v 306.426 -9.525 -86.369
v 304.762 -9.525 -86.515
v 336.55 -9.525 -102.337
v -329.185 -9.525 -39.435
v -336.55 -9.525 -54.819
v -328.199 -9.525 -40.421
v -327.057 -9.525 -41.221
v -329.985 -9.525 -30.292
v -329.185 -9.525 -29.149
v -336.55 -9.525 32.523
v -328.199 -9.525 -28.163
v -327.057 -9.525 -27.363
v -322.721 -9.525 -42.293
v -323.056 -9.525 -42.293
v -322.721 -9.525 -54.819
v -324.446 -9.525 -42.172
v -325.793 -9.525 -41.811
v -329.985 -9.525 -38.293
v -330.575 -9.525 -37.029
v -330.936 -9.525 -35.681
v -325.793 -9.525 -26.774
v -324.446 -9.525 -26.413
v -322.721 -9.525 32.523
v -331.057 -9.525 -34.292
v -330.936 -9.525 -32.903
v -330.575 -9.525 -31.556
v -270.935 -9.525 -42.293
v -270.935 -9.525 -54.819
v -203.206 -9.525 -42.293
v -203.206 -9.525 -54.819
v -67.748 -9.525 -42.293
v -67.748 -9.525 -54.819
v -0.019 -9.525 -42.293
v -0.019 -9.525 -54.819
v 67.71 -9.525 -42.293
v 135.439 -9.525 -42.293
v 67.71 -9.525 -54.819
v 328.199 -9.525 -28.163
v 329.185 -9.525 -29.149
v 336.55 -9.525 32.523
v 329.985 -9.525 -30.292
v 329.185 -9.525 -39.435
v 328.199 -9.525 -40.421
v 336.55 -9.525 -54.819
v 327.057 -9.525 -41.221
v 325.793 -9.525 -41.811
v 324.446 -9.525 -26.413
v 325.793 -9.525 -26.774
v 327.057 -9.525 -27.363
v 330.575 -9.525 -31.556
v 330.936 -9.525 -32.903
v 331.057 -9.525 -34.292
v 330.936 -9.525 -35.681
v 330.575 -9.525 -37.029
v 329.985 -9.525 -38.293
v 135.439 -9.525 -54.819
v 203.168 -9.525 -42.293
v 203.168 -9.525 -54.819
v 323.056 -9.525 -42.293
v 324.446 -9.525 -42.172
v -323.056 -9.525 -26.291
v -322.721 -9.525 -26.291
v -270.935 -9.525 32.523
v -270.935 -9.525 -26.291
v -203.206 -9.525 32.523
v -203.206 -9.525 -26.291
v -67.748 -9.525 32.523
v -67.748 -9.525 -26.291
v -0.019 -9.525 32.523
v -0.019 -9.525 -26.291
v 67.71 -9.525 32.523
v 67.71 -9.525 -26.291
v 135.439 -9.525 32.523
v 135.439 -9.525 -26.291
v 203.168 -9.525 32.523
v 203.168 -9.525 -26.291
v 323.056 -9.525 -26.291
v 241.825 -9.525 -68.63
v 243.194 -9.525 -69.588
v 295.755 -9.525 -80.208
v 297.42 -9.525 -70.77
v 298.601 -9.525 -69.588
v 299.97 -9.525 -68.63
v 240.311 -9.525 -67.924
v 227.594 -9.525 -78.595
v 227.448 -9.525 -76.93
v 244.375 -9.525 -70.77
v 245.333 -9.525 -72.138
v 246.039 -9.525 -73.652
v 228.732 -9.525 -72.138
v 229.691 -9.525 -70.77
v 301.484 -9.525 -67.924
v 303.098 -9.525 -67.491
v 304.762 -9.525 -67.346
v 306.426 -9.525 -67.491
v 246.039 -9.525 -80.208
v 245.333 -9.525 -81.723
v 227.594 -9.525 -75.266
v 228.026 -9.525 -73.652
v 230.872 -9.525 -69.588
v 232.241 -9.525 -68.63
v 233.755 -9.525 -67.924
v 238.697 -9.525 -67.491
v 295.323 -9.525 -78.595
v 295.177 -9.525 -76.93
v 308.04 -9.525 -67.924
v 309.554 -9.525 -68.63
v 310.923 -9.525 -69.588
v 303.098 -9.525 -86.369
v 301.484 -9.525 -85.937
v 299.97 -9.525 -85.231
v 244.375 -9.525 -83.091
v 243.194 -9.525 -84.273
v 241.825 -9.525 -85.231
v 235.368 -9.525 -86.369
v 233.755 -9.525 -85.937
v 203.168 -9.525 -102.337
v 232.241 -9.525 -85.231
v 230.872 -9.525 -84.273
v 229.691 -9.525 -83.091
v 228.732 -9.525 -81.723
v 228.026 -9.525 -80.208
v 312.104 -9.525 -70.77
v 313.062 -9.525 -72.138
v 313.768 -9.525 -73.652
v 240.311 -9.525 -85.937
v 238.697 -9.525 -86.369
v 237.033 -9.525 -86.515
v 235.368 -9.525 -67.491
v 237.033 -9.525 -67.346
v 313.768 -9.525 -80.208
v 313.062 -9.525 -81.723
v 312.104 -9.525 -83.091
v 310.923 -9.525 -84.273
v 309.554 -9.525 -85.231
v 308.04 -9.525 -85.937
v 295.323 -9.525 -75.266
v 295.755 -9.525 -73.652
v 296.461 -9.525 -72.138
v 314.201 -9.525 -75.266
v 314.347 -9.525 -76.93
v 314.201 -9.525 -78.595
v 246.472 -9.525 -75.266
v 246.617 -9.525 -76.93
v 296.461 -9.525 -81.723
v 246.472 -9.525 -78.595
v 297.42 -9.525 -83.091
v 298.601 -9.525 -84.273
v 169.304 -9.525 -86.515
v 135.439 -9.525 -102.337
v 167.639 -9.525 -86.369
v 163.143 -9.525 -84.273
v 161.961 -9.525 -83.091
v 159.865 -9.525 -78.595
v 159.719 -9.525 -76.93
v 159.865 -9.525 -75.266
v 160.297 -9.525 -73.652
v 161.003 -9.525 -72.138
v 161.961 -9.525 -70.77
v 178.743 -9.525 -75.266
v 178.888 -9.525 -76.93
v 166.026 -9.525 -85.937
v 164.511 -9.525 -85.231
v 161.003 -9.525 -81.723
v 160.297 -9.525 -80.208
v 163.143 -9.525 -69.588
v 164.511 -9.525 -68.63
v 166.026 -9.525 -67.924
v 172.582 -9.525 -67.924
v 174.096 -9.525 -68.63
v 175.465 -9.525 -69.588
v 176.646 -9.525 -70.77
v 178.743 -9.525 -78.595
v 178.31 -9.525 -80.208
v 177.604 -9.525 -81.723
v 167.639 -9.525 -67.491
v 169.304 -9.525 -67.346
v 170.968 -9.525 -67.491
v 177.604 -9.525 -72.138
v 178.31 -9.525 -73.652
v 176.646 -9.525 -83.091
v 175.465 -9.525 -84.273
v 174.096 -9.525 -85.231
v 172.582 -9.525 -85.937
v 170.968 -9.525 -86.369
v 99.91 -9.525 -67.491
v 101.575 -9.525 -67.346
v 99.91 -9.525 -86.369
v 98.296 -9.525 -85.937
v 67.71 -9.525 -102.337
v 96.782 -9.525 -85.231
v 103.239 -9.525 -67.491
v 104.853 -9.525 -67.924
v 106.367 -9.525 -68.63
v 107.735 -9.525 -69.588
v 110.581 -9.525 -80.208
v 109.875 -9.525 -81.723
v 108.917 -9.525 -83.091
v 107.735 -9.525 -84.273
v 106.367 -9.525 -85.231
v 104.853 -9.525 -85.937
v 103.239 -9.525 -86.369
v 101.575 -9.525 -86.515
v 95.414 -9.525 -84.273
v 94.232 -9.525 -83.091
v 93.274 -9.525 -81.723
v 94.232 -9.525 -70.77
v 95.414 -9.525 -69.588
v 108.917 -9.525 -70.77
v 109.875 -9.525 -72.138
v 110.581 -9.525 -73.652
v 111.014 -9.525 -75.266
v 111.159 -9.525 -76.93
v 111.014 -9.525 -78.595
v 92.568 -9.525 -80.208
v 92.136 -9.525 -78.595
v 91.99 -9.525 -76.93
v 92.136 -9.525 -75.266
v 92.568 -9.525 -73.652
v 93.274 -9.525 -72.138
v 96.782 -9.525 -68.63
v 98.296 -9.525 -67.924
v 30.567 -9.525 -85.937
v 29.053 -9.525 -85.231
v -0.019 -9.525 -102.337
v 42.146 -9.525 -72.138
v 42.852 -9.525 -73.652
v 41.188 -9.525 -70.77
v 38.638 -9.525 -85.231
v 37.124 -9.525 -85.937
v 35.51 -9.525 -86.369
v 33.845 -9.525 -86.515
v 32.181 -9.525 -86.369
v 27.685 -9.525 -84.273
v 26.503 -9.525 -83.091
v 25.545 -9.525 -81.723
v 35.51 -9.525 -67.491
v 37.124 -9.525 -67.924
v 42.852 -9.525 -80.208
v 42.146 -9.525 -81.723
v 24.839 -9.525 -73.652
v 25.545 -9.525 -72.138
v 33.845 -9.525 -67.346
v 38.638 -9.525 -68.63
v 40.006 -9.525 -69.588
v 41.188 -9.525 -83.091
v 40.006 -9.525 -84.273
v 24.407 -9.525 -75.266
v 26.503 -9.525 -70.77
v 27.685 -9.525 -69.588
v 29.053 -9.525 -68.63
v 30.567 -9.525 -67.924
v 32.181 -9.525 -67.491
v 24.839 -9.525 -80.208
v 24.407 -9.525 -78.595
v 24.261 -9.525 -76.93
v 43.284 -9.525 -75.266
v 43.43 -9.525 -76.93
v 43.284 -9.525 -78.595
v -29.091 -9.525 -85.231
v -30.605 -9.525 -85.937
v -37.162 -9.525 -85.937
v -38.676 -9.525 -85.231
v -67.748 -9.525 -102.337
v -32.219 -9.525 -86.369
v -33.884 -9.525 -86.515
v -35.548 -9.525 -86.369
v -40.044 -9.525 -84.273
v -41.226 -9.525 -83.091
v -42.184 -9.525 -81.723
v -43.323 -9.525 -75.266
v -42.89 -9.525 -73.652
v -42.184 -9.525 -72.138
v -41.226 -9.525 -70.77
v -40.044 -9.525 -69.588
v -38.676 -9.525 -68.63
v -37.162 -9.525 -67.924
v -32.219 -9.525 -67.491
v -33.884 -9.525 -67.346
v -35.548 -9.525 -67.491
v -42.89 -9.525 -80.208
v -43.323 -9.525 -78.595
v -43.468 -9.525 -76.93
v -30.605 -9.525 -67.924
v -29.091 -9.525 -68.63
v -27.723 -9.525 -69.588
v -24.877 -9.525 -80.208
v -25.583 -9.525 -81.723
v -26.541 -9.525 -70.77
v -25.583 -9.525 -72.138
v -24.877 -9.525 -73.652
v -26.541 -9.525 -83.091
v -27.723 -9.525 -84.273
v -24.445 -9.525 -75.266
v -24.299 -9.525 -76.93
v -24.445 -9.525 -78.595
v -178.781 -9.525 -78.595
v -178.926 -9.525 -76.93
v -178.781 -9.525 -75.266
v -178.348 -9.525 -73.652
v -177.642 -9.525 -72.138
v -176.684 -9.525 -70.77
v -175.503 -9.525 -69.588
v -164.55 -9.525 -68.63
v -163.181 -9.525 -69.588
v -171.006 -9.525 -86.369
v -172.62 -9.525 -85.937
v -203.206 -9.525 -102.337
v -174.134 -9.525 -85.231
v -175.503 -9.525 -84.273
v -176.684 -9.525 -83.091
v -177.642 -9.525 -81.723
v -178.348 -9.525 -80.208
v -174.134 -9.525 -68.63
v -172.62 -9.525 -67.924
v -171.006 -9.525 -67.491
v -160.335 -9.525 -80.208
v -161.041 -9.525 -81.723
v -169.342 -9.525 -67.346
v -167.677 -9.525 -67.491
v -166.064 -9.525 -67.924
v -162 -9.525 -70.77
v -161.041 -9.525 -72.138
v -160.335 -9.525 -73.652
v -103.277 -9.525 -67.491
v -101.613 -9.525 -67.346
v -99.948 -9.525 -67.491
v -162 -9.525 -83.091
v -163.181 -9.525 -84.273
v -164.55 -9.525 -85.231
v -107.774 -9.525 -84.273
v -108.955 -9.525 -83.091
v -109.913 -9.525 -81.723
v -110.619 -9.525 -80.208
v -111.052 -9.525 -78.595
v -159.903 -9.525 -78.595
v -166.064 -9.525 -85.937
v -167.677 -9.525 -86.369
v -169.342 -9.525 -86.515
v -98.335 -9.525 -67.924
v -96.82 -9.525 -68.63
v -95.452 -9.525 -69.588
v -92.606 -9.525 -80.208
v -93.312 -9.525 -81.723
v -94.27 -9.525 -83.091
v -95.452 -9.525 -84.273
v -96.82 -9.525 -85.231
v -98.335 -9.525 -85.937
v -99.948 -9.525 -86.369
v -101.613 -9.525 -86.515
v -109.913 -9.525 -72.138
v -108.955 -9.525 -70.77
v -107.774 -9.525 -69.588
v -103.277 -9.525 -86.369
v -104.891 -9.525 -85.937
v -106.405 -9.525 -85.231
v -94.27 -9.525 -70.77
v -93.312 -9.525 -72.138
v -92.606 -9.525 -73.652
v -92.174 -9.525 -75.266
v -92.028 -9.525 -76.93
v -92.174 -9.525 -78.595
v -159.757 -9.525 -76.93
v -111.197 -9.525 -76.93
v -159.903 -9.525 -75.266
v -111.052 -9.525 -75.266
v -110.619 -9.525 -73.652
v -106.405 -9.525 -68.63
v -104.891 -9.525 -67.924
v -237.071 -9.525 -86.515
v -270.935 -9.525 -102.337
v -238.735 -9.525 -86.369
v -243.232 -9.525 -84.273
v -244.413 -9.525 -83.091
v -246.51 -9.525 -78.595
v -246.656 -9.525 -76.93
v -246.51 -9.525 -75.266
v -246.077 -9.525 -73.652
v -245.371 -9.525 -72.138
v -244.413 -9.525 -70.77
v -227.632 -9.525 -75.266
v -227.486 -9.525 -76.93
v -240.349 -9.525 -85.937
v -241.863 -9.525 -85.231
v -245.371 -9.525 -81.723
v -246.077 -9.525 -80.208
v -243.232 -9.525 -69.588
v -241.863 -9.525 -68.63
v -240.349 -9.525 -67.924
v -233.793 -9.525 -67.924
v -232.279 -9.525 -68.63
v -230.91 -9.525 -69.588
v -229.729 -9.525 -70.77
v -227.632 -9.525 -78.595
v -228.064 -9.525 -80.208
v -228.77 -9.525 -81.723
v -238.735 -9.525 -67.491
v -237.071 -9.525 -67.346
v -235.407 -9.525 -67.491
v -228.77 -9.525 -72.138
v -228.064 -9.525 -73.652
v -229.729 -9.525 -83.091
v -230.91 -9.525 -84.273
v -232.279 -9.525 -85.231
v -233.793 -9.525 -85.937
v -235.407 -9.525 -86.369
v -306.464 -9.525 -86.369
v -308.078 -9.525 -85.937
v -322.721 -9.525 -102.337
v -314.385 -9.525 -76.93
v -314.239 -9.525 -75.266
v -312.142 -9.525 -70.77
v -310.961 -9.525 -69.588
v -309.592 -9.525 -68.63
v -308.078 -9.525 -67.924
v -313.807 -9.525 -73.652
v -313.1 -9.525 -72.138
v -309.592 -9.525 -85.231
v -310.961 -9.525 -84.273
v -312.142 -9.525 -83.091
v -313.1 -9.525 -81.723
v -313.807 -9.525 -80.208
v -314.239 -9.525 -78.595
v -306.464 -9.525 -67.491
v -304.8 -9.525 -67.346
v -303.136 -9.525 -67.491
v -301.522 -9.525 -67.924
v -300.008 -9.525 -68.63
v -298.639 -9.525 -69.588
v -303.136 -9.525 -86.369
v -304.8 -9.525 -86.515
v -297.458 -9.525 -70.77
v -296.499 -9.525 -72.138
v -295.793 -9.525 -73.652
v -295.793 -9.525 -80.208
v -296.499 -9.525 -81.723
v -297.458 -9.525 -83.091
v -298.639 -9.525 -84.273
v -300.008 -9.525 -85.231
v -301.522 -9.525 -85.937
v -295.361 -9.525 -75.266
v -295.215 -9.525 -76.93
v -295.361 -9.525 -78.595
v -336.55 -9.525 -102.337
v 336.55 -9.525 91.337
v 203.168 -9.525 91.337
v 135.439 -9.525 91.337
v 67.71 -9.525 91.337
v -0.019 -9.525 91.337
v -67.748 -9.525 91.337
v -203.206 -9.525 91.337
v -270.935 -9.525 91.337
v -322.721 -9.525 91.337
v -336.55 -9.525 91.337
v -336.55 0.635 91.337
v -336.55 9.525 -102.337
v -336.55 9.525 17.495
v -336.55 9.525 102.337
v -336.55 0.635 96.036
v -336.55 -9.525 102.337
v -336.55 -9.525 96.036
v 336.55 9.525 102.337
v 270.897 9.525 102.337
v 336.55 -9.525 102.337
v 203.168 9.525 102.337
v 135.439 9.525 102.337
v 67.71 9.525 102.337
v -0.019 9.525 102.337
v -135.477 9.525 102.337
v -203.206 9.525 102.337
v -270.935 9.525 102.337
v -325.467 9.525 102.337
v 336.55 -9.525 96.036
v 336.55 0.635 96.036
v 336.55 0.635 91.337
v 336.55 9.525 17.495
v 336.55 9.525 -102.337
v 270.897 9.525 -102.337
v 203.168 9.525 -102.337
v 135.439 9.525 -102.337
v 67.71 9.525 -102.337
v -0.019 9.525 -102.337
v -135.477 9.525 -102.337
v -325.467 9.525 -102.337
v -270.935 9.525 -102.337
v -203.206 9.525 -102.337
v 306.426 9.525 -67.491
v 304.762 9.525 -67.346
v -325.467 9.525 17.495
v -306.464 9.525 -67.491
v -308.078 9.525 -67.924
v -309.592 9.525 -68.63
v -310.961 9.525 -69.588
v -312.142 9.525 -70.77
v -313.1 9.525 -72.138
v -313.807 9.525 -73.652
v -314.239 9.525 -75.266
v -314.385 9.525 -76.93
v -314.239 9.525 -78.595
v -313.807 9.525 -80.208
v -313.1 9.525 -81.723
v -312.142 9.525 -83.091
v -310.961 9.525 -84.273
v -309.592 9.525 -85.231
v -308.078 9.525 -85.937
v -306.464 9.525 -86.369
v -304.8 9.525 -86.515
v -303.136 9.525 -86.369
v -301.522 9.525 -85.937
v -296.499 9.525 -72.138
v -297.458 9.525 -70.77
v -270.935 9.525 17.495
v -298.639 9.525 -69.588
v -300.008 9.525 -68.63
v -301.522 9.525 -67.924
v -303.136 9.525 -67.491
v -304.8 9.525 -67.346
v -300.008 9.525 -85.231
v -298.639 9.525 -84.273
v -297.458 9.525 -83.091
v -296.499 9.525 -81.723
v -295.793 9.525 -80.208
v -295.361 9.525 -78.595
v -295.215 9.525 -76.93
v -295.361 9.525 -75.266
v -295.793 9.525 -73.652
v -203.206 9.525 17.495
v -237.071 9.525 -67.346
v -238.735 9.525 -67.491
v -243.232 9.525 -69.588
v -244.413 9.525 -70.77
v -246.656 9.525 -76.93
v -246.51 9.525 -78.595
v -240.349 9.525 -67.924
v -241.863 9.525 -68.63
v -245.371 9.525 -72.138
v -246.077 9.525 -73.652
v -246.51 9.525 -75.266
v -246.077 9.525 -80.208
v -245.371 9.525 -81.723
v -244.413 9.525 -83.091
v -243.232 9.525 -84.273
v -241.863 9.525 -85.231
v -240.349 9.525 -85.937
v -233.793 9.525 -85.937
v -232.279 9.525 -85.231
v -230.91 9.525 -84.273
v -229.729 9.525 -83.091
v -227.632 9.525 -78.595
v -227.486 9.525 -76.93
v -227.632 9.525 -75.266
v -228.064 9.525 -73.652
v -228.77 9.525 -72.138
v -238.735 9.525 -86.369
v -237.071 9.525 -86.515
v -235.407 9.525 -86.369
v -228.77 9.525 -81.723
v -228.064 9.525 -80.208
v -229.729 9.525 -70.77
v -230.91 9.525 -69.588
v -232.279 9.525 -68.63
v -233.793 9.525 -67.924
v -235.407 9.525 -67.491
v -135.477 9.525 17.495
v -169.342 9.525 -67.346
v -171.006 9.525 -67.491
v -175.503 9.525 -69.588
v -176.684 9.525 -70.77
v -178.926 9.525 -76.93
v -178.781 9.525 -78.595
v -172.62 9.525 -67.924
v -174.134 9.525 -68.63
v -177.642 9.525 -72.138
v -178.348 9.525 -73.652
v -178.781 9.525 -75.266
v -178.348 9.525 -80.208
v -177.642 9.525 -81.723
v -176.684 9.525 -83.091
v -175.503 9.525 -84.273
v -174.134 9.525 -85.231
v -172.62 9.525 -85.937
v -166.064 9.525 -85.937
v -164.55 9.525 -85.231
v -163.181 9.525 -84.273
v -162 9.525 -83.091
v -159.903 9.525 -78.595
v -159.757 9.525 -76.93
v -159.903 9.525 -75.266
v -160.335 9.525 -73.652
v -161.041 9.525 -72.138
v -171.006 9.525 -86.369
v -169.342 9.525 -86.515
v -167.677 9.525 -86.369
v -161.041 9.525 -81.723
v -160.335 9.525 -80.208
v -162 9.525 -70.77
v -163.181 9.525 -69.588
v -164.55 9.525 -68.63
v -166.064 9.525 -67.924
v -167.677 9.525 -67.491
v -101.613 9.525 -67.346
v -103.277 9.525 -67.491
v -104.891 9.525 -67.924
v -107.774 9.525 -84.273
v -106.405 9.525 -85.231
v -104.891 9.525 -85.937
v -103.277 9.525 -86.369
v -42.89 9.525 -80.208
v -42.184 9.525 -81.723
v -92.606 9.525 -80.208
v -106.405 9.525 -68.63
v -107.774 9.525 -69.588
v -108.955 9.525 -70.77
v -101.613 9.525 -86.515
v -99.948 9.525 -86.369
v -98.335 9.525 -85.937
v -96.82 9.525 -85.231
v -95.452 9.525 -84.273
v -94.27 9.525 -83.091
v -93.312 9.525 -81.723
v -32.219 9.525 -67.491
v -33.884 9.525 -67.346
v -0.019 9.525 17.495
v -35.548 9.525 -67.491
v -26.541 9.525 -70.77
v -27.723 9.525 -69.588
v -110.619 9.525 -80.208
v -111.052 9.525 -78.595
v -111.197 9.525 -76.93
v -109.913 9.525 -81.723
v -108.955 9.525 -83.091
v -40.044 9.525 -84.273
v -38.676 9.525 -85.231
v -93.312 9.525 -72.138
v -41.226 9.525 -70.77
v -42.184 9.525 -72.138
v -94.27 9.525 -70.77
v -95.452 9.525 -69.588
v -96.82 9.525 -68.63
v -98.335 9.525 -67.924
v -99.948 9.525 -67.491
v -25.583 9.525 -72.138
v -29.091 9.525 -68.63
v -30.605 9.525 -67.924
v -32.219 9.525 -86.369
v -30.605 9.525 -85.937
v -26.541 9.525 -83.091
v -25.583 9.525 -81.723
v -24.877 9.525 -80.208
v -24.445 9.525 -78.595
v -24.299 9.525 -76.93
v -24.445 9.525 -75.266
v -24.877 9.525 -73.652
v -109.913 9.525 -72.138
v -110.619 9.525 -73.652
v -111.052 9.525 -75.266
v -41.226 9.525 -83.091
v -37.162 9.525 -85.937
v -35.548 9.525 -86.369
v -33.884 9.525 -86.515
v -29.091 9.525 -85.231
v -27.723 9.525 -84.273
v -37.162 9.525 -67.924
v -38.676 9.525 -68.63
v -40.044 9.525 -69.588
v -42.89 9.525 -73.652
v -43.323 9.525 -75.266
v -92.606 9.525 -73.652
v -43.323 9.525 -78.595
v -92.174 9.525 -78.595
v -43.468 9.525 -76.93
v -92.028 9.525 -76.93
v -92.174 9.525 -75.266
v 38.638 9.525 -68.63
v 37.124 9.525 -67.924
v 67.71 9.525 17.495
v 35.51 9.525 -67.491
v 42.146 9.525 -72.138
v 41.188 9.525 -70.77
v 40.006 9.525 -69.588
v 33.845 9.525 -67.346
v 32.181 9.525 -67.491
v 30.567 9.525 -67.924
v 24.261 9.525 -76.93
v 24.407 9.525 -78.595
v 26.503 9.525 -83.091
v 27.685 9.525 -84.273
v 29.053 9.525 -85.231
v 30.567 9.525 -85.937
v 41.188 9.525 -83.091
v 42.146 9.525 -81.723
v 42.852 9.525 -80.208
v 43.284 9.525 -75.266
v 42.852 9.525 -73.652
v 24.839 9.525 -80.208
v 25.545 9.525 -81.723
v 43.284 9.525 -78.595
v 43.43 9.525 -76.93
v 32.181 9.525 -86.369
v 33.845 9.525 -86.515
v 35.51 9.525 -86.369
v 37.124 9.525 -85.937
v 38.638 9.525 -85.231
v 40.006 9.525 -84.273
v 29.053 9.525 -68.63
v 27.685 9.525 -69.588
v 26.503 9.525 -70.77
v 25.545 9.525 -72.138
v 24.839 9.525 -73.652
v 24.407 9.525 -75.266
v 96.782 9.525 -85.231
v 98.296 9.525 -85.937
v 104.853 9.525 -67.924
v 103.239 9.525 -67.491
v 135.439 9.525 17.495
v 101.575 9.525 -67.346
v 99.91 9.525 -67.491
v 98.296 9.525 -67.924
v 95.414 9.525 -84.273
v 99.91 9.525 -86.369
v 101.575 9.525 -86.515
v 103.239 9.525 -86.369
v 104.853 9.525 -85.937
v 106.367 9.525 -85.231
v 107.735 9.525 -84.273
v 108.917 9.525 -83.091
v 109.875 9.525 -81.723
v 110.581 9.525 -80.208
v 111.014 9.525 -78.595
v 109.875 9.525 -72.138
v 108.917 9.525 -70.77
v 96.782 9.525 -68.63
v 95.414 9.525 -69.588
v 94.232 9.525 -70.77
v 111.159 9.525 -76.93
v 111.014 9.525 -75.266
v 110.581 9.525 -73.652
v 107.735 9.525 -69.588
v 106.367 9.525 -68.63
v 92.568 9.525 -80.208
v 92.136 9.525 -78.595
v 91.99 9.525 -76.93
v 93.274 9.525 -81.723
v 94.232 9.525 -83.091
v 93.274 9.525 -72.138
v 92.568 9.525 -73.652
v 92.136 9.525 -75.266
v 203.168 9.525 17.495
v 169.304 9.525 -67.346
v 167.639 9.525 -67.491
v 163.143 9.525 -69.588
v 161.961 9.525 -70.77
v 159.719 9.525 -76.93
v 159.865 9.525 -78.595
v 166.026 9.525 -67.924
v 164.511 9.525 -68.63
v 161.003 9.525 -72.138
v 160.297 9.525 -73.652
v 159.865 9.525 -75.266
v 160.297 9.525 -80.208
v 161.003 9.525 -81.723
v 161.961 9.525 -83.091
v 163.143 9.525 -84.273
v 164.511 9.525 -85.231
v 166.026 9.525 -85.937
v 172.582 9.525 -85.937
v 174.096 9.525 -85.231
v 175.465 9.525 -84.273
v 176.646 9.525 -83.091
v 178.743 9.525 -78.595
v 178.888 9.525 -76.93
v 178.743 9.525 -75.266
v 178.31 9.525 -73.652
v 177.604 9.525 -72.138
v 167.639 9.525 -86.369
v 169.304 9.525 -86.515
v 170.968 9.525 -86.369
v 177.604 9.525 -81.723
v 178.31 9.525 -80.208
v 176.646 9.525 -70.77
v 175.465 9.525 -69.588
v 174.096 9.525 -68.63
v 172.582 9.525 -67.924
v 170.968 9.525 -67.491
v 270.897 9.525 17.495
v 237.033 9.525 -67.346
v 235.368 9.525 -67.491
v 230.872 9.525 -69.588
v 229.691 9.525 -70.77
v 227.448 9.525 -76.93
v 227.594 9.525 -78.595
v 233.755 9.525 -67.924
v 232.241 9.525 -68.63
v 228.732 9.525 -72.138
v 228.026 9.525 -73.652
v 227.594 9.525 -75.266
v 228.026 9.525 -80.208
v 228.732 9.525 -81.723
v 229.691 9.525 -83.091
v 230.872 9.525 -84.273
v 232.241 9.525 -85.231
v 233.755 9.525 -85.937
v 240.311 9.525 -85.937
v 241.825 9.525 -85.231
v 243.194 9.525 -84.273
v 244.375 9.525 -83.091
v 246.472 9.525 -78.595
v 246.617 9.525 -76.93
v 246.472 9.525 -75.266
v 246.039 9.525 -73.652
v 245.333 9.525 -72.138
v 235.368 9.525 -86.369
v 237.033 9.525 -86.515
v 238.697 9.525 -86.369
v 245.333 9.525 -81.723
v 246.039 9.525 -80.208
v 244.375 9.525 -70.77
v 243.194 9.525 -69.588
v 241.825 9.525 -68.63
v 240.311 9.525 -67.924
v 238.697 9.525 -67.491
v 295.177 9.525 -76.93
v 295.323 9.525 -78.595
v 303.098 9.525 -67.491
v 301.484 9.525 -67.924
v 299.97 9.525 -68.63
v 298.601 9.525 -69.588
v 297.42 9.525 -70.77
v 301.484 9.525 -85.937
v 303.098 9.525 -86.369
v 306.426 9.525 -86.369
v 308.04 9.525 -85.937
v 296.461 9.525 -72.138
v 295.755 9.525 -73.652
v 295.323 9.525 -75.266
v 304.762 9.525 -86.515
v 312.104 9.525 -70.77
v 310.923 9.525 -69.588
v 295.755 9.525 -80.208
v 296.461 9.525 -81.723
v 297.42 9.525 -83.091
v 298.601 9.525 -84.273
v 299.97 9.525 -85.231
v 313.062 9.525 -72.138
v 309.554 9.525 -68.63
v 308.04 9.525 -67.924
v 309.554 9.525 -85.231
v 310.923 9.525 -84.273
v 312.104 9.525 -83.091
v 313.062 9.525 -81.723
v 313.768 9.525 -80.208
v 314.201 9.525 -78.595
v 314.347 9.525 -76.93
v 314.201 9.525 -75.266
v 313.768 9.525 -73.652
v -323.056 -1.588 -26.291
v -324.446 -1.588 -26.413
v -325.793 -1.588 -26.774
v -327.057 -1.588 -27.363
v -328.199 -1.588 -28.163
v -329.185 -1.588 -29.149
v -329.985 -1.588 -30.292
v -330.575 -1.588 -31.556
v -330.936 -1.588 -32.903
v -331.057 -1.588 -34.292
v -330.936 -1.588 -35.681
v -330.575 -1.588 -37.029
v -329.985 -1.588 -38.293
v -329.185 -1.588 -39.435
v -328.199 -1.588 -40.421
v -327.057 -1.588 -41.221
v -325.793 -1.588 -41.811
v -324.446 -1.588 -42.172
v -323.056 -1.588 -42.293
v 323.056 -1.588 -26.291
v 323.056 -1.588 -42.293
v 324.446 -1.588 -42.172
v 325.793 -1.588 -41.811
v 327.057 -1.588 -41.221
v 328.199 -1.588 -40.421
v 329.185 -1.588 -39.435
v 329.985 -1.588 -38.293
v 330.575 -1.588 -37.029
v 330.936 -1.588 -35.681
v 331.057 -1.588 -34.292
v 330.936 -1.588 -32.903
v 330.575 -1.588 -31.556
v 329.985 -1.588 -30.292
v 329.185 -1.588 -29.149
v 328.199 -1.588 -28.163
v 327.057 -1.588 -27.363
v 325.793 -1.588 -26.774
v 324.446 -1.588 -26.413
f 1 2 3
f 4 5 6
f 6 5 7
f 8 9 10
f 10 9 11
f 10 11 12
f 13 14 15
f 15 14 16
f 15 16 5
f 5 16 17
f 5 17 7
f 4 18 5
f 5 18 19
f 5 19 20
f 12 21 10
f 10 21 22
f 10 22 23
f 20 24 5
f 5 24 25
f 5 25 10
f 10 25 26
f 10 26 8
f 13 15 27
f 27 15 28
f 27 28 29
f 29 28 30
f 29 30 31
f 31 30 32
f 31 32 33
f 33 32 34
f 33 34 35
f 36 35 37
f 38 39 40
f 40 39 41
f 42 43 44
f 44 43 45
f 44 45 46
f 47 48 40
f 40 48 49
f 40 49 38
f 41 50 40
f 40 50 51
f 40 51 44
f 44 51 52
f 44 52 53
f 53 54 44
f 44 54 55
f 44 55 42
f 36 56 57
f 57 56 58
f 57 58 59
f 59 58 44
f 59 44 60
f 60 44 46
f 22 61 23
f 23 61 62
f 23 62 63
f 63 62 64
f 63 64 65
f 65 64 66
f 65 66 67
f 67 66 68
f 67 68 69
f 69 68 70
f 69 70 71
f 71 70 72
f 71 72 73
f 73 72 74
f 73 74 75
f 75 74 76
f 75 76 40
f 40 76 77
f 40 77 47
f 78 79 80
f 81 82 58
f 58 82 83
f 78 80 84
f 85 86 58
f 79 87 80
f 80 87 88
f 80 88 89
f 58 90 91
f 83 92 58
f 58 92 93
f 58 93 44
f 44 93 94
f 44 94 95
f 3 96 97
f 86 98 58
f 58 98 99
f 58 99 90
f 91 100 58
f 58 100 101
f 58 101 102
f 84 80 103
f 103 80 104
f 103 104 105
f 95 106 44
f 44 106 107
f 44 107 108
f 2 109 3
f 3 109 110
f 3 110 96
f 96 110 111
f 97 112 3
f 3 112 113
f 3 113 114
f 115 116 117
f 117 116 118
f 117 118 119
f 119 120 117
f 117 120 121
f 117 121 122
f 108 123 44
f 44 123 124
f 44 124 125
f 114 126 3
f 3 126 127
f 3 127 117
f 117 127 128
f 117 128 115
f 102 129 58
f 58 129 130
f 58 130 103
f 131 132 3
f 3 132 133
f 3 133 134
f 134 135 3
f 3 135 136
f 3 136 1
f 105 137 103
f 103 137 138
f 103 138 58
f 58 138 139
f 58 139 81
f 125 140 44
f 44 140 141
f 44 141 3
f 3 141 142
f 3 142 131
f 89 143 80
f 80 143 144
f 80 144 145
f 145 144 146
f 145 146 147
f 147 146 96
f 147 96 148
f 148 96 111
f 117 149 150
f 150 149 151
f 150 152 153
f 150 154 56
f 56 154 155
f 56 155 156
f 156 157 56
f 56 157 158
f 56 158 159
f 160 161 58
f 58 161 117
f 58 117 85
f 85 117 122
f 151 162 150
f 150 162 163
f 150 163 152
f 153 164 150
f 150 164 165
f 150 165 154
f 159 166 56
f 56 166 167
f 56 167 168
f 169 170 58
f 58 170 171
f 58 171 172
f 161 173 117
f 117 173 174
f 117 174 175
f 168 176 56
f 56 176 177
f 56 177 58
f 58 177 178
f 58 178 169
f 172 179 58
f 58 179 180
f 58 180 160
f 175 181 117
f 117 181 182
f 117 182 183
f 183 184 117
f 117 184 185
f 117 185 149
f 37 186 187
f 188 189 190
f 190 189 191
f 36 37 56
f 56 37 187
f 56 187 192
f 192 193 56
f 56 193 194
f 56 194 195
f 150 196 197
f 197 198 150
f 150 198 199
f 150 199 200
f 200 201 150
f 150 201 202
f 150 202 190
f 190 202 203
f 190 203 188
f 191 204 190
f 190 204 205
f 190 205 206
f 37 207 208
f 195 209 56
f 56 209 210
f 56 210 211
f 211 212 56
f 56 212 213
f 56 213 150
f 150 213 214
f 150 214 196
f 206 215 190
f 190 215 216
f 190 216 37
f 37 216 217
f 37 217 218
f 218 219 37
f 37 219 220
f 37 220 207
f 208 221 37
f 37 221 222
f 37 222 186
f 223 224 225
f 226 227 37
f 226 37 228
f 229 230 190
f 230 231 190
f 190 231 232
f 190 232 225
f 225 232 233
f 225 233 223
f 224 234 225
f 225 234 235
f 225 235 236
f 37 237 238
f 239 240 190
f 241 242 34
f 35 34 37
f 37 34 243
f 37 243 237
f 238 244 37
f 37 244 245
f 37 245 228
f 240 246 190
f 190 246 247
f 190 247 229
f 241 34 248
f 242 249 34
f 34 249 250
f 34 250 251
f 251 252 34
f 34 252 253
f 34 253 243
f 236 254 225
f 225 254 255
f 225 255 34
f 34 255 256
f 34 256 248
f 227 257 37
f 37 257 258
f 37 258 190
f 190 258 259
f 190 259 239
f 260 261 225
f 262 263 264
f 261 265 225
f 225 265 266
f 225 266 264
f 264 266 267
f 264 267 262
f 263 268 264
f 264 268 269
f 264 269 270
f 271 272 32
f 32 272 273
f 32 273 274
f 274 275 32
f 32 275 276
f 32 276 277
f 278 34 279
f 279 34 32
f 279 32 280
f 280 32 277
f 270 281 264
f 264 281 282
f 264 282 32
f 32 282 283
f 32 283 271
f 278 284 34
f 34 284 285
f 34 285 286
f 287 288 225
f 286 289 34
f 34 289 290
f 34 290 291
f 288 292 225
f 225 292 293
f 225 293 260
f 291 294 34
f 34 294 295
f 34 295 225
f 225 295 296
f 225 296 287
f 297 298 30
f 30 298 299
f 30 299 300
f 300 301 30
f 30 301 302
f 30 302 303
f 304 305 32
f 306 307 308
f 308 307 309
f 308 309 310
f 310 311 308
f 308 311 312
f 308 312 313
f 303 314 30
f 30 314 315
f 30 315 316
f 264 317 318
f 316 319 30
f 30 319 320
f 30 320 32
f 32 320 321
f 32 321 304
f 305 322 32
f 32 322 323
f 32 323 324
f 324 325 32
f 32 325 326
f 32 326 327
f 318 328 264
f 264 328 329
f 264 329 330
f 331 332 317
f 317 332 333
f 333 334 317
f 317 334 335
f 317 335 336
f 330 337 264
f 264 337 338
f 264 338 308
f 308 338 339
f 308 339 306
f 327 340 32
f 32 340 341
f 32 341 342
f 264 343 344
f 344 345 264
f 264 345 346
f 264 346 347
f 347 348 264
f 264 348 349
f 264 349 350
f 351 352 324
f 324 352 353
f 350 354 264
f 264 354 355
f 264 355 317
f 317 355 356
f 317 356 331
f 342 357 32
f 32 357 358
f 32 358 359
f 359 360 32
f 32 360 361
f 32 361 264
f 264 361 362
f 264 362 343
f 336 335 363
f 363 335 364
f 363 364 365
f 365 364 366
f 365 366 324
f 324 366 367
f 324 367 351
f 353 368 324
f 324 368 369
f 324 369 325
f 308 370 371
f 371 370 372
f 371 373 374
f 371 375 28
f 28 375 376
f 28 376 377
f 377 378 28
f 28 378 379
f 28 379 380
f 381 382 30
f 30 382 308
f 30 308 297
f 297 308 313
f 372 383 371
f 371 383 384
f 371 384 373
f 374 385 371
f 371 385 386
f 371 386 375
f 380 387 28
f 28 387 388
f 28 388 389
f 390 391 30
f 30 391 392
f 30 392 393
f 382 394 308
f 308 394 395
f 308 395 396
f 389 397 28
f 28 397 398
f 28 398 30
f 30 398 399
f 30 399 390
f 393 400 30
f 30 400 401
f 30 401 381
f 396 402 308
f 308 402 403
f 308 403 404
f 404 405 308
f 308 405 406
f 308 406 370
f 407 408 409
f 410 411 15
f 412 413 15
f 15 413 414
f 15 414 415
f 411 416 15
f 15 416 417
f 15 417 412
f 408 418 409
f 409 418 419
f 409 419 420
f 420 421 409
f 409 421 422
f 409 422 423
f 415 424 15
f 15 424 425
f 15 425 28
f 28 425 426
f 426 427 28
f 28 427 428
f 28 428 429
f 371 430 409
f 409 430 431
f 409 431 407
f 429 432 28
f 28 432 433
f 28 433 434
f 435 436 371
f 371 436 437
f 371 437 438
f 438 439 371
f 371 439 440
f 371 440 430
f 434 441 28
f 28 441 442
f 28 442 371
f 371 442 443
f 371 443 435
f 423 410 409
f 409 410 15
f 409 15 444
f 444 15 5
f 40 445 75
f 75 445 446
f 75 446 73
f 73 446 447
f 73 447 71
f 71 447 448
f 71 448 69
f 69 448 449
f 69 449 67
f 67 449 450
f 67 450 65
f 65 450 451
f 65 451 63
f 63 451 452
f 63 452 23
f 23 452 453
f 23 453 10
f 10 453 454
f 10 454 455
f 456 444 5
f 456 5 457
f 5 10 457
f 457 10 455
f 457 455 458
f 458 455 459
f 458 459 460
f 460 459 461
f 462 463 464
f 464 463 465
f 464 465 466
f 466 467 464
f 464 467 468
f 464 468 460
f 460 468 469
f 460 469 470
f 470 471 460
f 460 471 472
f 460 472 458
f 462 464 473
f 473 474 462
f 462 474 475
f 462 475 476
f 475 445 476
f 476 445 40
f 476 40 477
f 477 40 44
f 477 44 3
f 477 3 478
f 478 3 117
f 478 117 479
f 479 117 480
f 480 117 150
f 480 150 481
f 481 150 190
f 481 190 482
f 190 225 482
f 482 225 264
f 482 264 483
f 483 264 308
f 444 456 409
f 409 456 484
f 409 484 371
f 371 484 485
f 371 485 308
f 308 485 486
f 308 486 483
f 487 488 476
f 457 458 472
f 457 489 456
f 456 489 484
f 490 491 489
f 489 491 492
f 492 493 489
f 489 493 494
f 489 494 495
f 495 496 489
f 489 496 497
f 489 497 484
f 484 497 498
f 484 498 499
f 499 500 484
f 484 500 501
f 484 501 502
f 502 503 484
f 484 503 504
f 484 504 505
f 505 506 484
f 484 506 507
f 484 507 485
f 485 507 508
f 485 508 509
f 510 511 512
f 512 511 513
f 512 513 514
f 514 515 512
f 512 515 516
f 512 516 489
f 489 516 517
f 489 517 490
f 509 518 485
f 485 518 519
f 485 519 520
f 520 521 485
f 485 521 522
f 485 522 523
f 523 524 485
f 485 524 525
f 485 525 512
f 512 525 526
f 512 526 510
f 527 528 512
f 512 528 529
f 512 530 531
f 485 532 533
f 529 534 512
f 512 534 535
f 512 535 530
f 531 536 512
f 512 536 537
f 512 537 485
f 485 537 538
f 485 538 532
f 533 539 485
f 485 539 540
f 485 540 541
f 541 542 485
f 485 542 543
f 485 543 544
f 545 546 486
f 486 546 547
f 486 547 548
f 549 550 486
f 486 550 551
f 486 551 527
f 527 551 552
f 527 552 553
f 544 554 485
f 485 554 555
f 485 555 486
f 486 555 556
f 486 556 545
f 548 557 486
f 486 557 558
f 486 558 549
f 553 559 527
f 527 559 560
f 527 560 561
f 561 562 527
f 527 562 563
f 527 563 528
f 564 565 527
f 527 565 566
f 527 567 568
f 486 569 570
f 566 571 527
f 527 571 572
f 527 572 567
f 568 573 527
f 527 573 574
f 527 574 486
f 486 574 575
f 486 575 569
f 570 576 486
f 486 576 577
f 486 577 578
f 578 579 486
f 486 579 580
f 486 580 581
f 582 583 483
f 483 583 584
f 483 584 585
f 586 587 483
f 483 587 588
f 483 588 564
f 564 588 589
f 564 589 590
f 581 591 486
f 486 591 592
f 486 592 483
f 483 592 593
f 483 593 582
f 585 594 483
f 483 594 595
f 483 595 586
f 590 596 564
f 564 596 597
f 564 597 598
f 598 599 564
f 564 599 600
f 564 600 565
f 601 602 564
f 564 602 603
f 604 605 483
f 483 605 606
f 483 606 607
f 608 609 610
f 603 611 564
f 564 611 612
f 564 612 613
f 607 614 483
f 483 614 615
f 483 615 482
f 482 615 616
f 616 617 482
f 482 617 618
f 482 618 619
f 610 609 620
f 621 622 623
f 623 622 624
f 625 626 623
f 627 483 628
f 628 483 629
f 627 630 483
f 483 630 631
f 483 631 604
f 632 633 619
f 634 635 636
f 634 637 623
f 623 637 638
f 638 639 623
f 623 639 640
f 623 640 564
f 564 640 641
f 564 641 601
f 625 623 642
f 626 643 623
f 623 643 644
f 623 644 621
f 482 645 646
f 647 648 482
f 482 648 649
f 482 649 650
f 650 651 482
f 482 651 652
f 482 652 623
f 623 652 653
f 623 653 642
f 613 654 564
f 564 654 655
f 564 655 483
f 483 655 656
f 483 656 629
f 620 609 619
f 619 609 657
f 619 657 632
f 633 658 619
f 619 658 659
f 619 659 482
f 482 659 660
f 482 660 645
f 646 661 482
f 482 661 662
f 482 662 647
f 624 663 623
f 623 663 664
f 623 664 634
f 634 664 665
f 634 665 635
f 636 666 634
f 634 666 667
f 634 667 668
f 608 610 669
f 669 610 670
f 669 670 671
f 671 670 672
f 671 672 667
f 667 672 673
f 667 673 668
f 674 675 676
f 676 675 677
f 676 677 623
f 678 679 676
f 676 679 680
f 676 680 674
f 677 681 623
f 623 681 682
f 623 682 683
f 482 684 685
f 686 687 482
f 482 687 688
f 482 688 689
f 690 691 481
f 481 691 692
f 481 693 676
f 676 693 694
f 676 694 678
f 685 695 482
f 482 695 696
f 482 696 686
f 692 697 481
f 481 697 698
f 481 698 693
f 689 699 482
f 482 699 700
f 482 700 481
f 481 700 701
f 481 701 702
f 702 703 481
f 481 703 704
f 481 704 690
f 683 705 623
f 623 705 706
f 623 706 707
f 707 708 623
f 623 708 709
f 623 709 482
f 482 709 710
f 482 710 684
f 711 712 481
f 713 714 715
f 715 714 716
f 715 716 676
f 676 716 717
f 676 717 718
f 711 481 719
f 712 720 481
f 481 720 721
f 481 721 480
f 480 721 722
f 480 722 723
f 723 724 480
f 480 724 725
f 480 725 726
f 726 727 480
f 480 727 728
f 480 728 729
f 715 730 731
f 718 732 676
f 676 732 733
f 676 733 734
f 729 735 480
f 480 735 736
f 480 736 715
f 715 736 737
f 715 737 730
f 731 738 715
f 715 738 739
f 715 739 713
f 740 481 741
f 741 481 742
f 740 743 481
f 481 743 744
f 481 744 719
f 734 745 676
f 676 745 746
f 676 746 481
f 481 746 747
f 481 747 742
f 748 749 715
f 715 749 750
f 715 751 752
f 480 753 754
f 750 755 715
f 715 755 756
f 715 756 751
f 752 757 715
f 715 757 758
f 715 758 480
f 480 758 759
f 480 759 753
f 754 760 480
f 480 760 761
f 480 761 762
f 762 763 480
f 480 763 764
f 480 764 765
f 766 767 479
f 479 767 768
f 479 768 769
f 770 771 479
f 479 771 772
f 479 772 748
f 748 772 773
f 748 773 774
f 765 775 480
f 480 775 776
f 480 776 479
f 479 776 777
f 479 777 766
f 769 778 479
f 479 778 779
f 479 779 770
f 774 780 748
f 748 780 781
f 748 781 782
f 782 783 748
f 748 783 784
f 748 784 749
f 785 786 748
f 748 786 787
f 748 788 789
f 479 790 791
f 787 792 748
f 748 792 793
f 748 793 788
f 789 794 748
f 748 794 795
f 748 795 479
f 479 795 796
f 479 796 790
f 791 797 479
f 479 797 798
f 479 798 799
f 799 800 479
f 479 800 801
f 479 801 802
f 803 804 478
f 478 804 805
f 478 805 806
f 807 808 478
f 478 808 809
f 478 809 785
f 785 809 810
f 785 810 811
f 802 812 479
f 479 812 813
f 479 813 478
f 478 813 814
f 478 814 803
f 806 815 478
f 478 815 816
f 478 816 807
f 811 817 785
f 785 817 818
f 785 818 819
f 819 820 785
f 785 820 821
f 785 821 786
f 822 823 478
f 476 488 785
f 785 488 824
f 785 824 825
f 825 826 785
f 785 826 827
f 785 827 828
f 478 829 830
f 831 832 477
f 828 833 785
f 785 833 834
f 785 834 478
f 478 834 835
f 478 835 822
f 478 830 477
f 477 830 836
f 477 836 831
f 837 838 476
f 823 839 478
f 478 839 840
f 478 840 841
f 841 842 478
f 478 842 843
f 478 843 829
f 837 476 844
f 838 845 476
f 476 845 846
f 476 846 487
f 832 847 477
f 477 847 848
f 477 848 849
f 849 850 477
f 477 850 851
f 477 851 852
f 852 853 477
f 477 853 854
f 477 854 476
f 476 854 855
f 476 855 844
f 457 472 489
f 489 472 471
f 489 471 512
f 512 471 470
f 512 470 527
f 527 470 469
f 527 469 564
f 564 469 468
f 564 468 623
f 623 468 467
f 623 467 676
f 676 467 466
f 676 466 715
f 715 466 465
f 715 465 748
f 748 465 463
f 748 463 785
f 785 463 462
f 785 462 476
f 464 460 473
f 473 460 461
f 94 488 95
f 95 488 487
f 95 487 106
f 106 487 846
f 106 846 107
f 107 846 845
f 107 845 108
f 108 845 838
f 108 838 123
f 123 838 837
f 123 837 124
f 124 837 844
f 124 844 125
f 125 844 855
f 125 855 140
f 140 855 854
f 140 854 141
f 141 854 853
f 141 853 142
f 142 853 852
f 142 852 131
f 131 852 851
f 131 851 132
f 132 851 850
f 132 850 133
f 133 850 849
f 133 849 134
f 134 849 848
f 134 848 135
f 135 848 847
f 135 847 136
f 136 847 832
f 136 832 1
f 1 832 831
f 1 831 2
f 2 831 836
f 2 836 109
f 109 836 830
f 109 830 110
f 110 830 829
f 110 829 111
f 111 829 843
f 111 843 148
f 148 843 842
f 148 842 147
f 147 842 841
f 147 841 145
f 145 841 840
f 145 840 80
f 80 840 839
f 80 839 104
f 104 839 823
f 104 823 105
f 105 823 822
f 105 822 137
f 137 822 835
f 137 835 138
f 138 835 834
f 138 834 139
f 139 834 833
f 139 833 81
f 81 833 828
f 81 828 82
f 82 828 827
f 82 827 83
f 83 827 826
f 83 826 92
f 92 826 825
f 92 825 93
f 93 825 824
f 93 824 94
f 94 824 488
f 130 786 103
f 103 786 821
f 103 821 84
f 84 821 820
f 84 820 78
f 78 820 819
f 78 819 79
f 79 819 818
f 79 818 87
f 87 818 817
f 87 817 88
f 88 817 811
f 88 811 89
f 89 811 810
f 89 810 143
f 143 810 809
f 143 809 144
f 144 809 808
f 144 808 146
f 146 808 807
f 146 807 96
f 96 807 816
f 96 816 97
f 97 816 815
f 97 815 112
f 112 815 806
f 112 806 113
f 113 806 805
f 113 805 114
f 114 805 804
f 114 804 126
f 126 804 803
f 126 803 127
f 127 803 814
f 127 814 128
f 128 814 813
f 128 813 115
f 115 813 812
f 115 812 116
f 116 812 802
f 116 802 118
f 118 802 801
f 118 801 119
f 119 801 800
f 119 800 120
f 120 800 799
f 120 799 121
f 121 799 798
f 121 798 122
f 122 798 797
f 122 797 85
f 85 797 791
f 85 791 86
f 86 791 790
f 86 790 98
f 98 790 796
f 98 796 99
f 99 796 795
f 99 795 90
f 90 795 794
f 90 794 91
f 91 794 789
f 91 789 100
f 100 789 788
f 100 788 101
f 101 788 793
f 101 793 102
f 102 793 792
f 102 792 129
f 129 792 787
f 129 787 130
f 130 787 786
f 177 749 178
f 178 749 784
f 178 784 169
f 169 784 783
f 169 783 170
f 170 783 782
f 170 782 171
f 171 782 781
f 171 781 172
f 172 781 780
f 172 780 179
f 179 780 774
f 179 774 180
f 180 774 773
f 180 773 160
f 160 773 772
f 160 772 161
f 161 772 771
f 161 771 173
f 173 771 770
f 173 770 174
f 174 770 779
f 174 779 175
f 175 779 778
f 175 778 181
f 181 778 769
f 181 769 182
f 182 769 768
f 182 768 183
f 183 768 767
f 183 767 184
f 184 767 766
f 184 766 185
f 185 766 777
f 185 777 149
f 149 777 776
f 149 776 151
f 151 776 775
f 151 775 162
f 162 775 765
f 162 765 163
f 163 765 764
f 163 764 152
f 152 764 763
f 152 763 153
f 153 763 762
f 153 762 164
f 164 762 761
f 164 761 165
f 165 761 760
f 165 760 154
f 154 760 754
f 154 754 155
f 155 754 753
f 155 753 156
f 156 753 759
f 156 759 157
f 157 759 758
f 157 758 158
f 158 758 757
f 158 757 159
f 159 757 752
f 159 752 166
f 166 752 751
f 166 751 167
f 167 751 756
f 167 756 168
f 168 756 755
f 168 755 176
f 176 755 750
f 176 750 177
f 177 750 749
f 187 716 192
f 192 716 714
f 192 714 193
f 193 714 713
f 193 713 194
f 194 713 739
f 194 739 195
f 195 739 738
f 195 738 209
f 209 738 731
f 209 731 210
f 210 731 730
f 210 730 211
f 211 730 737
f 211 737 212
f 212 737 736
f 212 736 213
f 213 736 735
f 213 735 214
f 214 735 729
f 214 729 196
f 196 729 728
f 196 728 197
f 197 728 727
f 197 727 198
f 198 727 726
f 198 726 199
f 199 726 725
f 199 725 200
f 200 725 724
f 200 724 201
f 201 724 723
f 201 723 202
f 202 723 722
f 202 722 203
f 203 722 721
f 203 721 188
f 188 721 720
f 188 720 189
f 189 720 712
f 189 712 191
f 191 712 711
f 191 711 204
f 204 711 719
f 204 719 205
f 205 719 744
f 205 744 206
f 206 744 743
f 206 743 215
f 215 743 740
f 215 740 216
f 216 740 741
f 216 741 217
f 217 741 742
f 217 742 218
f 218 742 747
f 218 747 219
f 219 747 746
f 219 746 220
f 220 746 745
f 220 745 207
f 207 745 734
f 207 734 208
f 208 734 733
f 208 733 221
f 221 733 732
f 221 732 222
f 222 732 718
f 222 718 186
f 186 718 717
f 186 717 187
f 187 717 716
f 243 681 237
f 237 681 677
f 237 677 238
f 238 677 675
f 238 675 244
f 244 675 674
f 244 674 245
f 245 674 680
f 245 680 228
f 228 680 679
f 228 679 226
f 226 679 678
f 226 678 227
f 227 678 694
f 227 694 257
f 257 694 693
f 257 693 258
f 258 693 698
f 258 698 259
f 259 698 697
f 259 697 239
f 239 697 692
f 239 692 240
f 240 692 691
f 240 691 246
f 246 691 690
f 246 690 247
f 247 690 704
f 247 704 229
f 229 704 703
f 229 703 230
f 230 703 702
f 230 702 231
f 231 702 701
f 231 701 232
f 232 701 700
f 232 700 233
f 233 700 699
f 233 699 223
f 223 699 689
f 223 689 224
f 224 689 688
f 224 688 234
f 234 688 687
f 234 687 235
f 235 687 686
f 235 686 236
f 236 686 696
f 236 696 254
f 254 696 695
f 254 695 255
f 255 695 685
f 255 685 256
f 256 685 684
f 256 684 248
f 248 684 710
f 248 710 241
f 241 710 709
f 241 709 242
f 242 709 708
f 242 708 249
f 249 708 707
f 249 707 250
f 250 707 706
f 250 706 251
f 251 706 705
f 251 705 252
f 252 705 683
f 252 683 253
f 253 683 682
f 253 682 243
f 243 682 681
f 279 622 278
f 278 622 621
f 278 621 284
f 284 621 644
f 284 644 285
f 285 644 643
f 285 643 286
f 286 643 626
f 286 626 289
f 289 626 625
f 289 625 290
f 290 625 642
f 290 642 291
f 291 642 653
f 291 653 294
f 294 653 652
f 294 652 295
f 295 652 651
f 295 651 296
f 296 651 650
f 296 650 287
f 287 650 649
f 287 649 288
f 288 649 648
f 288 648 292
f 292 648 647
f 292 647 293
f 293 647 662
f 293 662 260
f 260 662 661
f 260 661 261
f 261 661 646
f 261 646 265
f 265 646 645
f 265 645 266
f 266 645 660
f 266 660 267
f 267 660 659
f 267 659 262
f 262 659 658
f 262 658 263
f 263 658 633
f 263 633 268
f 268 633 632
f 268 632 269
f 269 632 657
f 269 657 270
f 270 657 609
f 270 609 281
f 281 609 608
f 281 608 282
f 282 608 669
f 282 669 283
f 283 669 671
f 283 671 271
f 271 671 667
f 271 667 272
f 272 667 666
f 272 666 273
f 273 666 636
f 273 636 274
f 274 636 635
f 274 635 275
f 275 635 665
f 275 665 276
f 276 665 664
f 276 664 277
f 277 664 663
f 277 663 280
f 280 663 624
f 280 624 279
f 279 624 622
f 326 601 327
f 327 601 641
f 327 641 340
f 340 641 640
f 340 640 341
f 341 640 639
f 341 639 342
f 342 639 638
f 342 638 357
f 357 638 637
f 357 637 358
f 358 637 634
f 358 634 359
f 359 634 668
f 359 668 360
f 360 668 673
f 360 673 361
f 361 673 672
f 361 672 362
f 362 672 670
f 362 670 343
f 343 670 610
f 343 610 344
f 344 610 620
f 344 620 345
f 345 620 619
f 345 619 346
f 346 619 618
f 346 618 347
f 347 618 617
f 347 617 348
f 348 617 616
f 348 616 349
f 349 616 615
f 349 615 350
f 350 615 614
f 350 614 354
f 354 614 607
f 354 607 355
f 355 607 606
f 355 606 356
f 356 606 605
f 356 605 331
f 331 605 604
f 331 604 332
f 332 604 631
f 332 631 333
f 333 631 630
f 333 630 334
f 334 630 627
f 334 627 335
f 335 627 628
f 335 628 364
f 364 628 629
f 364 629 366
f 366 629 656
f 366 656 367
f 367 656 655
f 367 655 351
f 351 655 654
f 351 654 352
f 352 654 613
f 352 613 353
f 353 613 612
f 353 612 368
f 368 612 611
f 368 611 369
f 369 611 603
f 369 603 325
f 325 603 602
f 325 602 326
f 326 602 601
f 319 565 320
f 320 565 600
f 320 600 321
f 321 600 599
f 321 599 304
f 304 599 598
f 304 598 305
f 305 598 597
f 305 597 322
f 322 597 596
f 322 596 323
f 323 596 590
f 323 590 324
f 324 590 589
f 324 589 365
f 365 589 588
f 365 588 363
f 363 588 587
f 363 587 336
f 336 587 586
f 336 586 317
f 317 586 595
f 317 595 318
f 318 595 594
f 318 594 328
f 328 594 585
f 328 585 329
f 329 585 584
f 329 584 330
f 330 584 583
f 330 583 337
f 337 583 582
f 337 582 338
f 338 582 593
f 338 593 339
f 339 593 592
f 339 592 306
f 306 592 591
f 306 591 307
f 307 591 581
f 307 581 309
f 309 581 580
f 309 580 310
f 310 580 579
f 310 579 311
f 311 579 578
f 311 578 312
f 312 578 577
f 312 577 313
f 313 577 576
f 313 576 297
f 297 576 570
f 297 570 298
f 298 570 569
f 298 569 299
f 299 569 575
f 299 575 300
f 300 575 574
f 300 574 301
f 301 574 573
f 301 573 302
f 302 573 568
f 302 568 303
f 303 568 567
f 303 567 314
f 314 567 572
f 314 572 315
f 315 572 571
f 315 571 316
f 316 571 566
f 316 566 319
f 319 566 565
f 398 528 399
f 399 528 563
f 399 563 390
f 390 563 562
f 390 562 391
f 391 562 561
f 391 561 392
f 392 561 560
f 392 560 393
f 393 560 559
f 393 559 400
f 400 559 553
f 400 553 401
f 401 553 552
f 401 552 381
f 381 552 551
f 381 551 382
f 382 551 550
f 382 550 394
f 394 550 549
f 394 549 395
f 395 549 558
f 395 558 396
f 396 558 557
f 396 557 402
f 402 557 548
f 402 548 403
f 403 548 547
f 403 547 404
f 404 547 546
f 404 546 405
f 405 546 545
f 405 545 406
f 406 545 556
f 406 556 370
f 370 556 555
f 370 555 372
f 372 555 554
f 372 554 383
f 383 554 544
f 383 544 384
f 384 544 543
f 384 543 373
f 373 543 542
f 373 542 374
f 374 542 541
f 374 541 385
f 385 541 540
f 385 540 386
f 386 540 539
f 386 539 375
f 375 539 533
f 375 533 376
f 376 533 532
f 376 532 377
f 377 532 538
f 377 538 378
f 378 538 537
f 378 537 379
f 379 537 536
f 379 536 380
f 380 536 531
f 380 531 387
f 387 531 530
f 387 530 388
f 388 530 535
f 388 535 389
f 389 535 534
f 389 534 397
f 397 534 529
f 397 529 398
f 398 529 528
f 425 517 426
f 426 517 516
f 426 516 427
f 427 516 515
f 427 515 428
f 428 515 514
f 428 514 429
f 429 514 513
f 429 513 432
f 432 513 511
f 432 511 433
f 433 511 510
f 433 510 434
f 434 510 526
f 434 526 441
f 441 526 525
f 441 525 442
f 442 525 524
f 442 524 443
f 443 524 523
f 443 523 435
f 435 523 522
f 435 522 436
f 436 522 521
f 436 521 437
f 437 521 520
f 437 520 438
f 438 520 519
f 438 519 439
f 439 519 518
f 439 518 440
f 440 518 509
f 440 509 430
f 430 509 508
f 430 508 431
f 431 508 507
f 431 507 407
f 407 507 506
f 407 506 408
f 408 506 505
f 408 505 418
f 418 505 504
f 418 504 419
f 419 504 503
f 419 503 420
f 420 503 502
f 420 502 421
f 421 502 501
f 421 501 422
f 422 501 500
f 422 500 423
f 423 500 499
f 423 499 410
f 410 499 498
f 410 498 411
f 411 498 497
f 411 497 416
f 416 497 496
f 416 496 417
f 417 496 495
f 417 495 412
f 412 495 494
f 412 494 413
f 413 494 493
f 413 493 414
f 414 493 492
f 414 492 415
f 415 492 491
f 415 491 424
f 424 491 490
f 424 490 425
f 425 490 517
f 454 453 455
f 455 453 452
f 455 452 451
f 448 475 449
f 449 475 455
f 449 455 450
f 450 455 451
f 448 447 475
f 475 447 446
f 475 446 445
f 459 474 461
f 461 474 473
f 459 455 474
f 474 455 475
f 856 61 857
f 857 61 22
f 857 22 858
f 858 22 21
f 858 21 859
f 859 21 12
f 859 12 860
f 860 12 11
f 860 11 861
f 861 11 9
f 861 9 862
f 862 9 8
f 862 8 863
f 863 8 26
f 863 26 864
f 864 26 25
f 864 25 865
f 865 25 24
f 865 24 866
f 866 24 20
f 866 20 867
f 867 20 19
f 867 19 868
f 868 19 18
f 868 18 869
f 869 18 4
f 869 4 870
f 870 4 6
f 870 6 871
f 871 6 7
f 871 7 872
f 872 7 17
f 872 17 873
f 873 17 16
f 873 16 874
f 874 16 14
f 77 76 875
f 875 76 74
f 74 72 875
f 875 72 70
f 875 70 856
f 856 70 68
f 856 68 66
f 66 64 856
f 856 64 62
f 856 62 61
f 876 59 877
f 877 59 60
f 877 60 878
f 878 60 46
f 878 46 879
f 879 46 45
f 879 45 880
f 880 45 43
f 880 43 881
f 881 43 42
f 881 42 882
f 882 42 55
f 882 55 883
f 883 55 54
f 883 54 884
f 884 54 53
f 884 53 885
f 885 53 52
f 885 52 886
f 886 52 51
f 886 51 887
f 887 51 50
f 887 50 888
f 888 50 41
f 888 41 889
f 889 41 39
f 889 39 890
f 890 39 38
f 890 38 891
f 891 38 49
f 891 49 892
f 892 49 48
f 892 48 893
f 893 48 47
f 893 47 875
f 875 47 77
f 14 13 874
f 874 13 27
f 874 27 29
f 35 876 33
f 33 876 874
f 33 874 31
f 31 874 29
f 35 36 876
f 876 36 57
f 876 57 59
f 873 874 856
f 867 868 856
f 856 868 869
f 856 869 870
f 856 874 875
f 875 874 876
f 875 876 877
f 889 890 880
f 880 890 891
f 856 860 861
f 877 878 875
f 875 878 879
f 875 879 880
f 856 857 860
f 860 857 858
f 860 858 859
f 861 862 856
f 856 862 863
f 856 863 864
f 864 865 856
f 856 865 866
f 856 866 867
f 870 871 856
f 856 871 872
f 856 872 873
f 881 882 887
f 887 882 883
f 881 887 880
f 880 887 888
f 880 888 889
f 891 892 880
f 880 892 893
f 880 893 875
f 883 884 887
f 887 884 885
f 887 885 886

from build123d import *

# Parameters (mm, degrees)
SKETCH1_W               = 673.1
SKETCH1_H               = 204.6732
BOSS_EXTRUDE1_DEPTH     = 9.525
SKETCH2_R               = 9.584587104
CUT_EXTRUDE1_DEPTH      = 1
CUT_EXTRUDE1_DEPTH_BACK = 20.05
SKETCH4_W               = 673.1
SKETCH4_H               = 4.699
CUT_EXTRUDE2_DEPTH      = 10.16
CUT_EXTRUDE5_DEPTH      = 7.9375


with BuildPart() as part:
    # Sketch1 → Boss-Extrude1 (new body, symmetric)
    with BuildSketch(Plane(origin=(0, 0, 0), x_dir=(1, 0, 0), z_dir=(0, 1, 0))):
        Rectangle(SKETCH1_W, SKETCH1_H)
    extrude(amount=BOSS_EXTRUDE1_DEPTH, both=True)

    # Sketch2 → Cut-Extrude1 (cut, two sides)
    with BuildSketch(Plane(origin=(0, 9.525, 0), x_dir=(1, 0, 0), z_dir=(0, 1, 0))) as cut_extrude1_sk:
        with Locations((-304.8, 76.930371018)):
            Circle(SKETCH2_R)
        with Locations((-237.0709, 76.930371018)):
            Circle(SKETCH2_R)
        with Locations((-169.3418, 76.930371018)):
            Circle(SKETCH2_R)
        with Locations((-101.6127, 76.930371018)):
            Circle(SKETCH2_R)
        with Locations((-33.8836, 76.930371018)):
            Circle(SKETCH2_R)
        with Locations((33.8455, 76.930371018)):
            Circle(SKETCH2_R)
        with Locations((101.5746, 76.930371018)):
            Circle(SKETCH2_R)
        with Locations((169.3037, 76.930371018)):
            Circle(SKETCH2_R)
        with Locations((237.0328, 76.930371018)):
            Circle(SKETCH2_R)
        with Locations((304.7619, 76.930371018)):
            Circle(SKETCH2_R)
    extrude(amount=CUT_EXTRUDE1_DEPTH, mode=Mode.SUBTRACT)
    extrude(cut_extrude1_sk.sketch, amount=-CUT_EXTRUDE1_DEPTH_BACK, mode=Mode.SUBTRACT)

    # Sketch4 → Cut-Extrude2 (cut)
    with BuildSketch(Plane.XZ.offset(9.525)):
        with Locations((0, 93.6860458)):
            Rectangle(SKETCH4_W, SKETCH4_H)
    extrude(amount=-CUT_EXTRUDE2_DEPTH, mode=Mode.SUBTRACT)

    # Sketch7 → Cut-Extrude5 (cut)
    with BuildSketch(Plane.XZ.offset(9.525)):
        with BuildLine():
            Line((-323.05625, -26.291096465), (323.05625, -26.291096465))
            ThreePointArc((323.05625, -26.291096465), (331.05725, -34.292096465), (323.05625, -42.293096465))
            Line((323.05625, -42.293096465), (-323.05625, -42.293096465))
            ThreePointArc((-323.05625, -42.293096465), (-331.05725, -34.292096465), (-323.05625, -26.291096465))
        make_face()
    extrude(amount=-CUT_EXTRUDE5_DEPTH, mode=Mode.SUBTRACT)


solid = part.part
